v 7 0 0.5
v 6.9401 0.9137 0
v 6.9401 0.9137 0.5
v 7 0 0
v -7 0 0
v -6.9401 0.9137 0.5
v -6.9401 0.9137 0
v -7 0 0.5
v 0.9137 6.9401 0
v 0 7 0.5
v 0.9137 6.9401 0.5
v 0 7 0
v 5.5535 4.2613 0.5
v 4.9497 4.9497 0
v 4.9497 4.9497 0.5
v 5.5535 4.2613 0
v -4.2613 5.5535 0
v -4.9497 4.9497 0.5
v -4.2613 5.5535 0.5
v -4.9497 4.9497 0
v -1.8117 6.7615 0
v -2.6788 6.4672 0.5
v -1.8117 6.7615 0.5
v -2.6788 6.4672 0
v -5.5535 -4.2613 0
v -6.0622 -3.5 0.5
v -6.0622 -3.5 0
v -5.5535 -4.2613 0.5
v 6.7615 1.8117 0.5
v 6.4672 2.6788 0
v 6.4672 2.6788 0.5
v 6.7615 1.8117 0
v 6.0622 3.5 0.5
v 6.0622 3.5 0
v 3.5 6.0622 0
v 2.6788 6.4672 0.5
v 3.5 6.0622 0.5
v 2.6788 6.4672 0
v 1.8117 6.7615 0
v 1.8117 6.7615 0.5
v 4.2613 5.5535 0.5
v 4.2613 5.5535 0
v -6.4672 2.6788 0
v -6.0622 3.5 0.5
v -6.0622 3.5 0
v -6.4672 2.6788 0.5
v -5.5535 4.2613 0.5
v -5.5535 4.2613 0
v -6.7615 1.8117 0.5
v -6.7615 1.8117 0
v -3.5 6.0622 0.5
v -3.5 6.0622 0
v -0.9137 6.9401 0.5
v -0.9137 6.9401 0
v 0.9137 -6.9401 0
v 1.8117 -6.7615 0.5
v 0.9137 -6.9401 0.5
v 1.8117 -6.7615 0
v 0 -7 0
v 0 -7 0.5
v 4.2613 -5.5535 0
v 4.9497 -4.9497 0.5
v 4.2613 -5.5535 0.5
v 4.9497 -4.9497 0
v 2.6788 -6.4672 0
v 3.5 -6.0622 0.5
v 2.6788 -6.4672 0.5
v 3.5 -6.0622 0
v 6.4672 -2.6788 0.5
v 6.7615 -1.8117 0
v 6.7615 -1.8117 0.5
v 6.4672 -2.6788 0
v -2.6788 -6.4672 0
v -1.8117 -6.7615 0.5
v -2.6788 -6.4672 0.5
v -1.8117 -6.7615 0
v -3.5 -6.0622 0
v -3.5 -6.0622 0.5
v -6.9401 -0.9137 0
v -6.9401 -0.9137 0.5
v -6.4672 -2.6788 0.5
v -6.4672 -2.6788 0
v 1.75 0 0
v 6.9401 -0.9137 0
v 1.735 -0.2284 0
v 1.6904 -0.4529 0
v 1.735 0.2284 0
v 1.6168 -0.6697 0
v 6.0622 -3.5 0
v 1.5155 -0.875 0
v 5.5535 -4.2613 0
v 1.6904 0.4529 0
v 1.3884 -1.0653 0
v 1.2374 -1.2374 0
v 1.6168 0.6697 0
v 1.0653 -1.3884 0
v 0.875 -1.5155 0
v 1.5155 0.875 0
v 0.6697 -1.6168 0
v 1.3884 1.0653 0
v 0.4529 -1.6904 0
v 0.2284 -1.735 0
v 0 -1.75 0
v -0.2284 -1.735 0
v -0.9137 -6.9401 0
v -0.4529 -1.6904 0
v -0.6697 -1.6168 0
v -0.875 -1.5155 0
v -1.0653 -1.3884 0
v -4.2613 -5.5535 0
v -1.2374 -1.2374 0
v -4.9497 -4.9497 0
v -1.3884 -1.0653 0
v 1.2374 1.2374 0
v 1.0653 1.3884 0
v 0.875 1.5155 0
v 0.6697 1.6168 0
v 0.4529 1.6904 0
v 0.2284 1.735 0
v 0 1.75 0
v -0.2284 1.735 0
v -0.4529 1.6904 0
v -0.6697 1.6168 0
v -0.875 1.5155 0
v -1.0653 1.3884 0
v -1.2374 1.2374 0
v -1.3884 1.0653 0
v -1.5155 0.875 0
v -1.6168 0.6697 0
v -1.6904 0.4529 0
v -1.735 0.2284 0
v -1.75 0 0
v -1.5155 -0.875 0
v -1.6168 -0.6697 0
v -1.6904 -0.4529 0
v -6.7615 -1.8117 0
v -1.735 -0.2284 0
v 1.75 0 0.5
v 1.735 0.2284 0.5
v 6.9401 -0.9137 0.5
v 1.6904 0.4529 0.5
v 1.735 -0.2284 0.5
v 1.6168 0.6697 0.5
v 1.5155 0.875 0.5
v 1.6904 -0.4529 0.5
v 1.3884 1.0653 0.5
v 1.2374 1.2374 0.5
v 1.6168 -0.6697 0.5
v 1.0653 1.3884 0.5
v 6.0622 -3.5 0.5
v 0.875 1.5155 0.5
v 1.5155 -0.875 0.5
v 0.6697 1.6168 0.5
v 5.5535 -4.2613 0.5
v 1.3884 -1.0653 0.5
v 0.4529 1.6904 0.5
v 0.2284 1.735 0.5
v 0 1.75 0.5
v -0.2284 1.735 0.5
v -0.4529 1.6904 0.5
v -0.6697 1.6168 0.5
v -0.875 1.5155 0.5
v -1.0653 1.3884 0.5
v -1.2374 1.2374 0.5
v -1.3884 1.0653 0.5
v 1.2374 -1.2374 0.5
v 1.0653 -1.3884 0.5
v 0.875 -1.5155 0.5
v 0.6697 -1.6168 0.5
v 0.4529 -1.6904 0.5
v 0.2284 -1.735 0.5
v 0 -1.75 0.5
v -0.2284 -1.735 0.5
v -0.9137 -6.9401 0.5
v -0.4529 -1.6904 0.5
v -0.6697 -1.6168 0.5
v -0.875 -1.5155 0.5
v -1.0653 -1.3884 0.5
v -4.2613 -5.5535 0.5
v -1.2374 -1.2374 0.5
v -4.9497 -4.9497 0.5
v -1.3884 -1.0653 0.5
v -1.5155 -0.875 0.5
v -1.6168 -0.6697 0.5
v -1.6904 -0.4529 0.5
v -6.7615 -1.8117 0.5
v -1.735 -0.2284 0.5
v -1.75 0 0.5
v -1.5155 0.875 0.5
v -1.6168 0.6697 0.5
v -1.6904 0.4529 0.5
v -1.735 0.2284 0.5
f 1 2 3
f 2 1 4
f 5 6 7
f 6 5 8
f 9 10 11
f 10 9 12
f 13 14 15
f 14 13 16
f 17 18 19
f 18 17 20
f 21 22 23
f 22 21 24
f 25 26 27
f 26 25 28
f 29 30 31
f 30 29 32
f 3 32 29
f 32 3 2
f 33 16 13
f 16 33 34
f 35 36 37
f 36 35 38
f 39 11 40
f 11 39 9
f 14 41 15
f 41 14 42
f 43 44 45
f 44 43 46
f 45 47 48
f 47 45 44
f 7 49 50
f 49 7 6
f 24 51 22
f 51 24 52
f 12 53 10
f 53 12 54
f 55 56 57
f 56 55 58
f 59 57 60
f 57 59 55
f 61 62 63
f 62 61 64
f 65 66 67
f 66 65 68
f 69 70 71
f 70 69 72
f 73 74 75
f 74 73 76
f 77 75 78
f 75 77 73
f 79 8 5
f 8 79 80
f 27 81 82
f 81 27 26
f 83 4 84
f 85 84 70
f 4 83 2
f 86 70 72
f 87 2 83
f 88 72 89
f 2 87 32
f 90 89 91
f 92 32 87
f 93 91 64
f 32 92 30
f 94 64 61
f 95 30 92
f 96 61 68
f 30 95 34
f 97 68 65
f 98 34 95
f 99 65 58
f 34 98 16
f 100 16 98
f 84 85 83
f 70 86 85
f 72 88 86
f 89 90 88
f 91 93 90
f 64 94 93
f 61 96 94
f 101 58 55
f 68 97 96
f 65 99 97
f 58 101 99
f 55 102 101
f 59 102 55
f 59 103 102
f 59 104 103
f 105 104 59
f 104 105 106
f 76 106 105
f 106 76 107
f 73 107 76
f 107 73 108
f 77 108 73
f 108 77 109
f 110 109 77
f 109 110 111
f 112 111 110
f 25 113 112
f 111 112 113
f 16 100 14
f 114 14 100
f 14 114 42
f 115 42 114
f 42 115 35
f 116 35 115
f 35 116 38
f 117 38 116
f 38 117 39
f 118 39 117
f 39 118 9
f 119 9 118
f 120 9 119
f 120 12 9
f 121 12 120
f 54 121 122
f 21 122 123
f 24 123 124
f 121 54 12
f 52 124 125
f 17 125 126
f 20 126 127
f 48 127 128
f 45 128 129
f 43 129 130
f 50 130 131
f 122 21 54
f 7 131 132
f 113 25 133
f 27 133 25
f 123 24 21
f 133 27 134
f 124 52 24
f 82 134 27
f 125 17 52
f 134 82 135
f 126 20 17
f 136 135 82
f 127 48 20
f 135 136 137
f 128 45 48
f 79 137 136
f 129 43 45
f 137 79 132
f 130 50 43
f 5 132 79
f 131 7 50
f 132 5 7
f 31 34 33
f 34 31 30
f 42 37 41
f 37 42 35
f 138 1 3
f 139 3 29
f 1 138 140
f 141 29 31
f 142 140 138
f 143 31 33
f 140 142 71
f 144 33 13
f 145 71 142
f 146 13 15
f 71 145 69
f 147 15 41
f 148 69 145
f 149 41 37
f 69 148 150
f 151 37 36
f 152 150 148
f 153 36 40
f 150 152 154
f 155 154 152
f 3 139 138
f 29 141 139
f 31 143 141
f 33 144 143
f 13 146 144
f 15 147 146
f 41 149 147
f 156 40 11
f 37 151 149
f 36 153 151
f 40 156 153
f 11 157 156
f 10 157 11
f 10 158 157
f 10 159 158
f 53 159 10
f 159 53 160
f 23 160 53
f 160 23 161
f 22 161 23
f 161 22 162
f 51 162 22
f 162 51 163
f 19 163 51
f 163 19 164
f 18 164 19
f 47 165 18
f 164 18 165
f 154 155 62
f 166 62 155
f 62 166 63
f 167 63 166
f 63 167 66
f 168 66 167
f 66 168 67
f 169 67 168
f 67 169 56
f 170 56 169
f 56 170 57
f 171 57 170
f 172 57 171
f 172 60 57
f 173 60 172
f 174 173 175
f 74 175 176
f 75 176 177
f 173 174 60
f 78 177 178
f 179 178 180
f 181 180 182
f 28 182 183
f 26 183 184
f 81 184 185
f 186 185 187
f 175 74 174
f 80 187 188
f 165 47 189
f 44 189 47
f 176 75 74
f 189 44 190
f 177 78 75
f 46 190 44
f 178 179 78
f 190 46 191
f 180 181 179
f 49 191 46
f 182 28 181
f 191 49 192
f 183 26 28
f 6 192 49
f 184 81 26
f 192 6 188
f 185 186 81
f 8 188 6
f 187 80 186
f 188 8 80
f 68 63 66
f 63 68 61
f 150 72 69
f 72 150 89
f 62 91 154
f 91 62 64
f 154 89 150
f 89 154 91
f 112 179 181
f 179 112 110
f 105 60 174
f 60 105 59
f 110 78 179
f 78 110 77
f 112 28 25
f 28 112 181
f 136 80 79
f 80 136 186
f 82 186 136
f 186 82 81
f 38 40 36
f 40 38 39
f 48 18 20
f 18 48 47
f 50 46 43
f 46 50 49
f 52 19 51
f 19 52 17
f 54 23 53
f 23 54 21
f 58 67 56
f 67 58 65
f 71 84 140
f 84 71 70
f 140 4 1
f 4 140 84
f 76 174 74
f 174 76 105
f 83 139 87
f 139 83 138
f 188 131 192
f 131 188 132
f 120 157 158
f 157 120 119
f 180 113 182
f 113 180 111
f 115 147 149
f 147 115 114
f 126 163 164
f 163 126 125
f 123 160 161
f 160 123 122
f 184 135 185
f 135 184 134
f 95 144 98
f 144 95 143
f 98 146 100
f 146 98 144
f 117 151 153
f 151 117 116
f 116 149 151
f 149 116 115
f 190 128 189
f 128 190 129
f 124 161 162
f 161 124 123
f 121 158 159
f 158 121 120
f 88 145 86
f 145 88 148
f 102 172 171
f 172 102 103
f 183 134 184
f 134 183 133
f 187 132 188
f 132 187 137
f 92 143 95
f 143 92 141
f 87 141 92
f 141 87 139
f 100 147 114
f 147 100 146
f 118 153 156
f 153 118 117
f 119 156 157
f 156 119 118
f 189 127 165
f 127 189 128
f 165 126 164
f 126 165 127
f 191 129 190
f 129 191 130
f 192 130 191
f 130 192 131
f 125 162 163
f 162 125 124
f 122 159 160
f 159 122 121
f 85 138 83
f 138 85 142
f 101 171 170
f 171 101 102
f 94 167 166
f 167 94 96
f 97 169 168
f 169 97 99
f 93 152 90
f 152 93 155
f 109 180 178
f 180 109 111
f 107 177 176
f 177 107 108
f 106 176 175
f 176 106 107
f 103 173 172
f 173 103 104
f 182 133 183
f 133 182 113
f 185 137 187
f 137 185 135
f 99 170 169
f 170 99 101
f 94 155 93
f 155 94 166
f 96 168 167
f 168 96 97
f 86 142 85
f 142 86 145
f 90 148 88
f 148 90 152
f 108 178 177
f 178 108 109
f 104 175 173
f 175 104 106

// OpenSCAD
// Gen-DF — assembly gap shim, h = run_clear (rotor face -> flange); copper is inside the flanges
include <parameters.scad>;
$fn = 48;
difference() {
    cylinder(d=spacer_pad_od, h=gap_spacer_h);
    translate([0, 0, -0.1]) cylinder(d=spacer_pad_id, h=gap_spacer_h + 0.2);
}
